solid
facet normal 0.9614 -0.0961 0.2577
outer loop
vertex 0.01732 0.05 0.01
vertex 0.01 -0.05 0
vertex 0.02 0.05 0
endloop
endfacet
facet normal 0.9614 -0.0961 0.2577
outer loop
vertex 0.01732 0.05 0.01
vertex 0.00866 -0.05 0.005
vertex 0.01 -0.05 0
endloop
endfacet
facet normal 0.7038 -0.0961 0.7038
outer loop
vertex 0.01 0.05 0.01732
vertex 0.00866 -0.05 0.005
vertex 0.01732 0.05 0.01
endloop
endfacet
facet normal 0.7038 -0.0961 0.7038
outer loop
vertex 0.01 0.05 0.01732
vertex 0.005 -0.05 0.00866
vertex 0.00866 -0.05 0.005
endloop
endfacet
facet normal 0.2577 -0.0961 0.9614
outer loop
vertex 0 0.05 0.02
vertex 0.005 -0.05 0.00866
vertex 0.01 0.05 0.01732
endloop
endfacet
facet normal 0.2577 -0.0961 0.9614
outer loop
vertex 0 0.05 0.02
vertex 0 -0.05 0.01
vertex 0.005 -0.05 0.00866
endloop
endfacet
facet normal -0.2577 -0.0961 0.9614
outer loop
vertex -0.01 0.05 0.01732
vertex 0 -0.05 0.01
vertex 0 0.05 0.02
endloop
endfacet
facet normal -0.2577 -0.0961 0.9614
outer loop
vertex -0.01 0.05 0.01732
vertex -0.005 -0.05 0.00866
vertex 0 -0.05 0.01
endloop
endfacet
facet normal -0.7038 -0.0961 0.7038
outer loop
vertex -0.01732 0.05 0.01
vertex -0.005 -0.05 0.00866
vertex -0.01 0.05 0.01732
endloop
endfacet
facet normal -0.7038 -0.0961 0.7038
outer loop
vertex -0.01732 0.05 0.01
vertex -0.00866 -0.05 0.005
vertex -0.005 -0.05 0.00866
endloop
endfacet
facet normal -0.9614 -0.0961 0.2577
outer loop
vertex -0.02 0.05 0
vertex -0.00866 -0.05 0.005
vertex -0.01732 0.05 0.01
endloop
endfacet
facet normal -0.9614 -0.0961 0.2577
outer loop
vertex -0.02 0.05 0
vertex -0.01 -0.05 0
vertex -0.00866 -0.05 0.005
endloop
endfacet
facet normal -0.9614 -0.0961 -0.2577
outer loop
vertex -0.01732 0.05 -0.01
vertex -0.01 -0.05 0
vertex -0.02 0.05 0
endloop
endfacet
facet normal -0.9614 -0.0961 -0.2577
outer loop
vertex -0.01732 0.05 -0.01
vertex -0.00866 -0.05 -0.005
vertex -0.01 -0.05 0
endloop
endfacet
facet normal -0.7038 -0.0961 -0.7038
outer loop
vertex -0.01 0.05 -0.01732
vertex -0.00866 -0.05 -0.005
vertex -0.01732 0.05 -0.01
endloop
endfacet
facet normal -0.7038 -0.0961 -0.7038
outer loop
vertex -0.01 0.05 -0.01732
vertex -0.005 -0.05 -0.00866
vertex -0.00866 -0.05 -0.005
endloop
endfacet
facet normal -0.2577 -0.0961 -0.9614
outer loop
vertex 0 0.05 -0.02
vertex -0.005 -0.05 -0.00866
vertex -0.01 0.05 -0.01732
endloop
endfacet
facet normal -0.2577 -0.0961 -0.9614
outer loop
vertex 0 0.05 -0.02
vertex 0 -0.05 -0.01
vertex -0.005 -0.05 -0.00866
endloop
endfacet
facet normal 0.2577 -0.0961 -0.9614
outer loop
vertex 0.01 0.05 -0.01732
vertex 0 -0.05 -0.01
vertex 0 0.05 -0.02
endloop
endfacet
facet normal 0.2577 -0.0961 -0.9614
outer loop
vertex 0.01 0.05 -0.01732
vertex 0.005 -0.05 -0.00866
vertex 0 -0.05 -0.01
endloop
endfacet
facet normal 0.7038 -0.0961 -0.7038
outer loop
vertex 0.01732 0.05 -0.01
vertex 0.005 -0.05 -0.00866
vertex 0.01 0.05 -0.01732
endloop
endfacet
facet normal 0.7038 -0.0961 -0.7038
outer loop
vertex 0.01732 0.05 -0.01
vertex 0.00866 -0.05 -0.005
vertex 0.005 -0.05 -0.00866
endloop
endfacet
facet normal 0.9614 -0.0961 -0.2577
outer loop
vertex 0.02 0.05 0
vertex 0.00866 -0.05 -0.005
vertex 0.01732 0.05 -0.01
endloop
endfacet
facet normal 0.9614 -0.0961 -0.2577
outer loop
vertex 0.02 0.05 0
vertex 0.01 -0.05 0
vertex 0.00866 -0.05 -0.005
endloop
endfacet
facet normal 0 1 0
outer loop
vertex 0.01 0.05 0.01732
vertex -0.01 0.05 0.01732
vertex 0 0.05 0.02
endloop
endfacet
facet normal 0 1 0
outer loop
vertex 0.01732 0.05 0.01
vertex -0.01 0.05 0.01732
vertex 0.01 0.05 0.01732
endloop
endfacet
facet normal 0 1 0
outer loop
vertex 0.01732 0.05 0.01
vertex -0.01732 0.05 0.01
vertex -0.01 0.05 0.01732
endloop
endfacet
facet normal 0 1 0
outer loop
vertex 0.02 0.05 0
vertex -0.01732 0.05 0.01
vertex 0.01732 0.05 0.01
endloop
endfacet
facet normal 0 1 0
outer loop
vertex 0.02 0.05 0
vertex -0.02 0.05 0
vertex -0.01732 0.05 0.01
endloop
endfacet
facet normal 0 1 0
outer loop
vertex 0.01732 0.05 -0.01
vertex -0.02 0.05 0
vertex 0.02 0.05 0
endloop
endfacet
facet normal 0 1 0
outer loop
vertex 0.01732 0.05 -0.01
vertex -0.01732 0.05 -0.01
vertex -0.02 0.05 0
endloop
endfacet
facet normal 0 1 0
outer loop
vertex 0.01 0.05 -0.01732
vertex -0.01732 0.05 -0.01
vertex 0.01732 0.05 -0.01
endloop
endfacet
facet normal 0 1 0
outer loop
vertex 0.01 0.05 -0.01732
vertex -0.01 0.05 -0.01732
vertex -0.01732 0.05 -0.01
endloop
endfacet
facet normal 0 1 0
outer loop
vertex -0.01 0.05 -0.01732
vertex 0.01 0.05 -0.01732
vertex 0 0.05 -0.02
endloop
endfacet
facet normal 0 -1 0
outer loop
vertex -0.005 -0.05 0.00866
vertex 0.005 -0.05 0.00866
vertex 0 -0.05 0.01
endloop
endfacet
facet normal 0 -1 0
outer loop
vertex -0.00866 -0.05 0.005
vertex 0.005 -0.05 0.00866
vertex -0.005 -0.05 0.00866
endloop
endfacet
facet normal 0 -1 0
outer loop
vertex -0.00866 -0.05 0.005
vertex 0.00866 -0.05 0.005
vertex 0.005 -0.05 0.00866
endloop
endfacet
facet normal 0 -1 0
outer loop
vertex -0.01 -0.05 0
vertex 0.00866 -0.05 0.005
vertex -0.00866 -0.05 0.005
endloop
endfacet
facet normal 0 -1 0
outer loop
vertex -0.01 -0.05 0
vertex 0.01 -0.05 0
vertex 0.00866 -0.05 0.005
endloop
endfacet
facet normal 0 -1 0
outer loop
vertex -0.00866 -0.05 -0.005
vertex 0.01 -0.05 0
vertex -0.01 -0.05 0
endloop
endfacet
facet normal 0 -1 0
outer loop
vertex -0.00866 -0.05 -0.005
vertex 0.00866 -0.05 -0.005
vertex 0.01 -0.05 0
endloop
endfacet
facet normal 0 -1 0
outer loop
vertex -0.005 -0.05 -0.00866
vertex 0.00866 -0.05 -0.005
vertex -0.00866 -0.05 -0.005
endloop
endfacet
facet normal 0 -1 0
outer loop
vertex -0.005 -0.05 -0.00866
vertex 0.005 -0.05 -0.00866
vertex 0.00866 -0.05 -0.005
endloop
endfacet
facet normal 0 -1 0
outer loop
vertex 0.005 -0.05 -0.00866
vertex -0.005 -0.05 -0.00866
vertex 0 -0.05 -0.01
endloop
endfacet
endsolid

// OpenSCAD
// file: lib.scad
function x(v) = v[0];
function y(v) = v[1];
function z(v) = v[2];
function add(v1,v2) = [ for (i = [ 0 : len(v1)-1 ]) v1[i] + v2[i] ];
function xv(d) = [d,0,0];
function yv(d) = [0,d,0];
function zv(d) = [0,0,d];

module box(v) { cube(size=v, center=true); }
module cyl(r1,r2,h) { cylinder(r1=r1, r2=r2, h=h, center=true); }

function grow(n,v) = [x(v)+n*2, y(v)+n*2, z(v)+n*2];

module rbox(v, radius=1) {
	cx = x(v)/2-radius;
	cy = y(v)/2-radius;
	cz = z(v)/2-radius;

	hull() {
		translate([cx,cy,cz]) sphere(r=radius);
		translate([cx,cy,-cz]) sphere(r=radius);
		translate([cx,-cy,cz]) sphere(r=radius);
		translate([cx,-cy,-cz]) sphere(r=radius);
		translate([-cx,cy,cz]) sphere(r=radius);
		translate([-cx,cy,-cz]) sphere(r=radius);
		translate([-cx,-cy,cz]) sphere(r=radius);
		translate([-cx,-cy,-cz]) sphere(r=radius);
	}
}

module fillet(r=1) {
  minkowski() {
    difference() {
      children();
      minkowski() {
        difference() {
          minkowski() {
            children();
            sphere(r=r);
          }
          children();
        }
        sphere(r=r);
      }
    }
    sphere(r=r);
  }
}
// main file
use <lib.scad>

module chassis() {
	rotate([90,0,0]) union() {
		cyl(0.02, 0.01, 0.1);
	};
}

chassis($fn=12);
